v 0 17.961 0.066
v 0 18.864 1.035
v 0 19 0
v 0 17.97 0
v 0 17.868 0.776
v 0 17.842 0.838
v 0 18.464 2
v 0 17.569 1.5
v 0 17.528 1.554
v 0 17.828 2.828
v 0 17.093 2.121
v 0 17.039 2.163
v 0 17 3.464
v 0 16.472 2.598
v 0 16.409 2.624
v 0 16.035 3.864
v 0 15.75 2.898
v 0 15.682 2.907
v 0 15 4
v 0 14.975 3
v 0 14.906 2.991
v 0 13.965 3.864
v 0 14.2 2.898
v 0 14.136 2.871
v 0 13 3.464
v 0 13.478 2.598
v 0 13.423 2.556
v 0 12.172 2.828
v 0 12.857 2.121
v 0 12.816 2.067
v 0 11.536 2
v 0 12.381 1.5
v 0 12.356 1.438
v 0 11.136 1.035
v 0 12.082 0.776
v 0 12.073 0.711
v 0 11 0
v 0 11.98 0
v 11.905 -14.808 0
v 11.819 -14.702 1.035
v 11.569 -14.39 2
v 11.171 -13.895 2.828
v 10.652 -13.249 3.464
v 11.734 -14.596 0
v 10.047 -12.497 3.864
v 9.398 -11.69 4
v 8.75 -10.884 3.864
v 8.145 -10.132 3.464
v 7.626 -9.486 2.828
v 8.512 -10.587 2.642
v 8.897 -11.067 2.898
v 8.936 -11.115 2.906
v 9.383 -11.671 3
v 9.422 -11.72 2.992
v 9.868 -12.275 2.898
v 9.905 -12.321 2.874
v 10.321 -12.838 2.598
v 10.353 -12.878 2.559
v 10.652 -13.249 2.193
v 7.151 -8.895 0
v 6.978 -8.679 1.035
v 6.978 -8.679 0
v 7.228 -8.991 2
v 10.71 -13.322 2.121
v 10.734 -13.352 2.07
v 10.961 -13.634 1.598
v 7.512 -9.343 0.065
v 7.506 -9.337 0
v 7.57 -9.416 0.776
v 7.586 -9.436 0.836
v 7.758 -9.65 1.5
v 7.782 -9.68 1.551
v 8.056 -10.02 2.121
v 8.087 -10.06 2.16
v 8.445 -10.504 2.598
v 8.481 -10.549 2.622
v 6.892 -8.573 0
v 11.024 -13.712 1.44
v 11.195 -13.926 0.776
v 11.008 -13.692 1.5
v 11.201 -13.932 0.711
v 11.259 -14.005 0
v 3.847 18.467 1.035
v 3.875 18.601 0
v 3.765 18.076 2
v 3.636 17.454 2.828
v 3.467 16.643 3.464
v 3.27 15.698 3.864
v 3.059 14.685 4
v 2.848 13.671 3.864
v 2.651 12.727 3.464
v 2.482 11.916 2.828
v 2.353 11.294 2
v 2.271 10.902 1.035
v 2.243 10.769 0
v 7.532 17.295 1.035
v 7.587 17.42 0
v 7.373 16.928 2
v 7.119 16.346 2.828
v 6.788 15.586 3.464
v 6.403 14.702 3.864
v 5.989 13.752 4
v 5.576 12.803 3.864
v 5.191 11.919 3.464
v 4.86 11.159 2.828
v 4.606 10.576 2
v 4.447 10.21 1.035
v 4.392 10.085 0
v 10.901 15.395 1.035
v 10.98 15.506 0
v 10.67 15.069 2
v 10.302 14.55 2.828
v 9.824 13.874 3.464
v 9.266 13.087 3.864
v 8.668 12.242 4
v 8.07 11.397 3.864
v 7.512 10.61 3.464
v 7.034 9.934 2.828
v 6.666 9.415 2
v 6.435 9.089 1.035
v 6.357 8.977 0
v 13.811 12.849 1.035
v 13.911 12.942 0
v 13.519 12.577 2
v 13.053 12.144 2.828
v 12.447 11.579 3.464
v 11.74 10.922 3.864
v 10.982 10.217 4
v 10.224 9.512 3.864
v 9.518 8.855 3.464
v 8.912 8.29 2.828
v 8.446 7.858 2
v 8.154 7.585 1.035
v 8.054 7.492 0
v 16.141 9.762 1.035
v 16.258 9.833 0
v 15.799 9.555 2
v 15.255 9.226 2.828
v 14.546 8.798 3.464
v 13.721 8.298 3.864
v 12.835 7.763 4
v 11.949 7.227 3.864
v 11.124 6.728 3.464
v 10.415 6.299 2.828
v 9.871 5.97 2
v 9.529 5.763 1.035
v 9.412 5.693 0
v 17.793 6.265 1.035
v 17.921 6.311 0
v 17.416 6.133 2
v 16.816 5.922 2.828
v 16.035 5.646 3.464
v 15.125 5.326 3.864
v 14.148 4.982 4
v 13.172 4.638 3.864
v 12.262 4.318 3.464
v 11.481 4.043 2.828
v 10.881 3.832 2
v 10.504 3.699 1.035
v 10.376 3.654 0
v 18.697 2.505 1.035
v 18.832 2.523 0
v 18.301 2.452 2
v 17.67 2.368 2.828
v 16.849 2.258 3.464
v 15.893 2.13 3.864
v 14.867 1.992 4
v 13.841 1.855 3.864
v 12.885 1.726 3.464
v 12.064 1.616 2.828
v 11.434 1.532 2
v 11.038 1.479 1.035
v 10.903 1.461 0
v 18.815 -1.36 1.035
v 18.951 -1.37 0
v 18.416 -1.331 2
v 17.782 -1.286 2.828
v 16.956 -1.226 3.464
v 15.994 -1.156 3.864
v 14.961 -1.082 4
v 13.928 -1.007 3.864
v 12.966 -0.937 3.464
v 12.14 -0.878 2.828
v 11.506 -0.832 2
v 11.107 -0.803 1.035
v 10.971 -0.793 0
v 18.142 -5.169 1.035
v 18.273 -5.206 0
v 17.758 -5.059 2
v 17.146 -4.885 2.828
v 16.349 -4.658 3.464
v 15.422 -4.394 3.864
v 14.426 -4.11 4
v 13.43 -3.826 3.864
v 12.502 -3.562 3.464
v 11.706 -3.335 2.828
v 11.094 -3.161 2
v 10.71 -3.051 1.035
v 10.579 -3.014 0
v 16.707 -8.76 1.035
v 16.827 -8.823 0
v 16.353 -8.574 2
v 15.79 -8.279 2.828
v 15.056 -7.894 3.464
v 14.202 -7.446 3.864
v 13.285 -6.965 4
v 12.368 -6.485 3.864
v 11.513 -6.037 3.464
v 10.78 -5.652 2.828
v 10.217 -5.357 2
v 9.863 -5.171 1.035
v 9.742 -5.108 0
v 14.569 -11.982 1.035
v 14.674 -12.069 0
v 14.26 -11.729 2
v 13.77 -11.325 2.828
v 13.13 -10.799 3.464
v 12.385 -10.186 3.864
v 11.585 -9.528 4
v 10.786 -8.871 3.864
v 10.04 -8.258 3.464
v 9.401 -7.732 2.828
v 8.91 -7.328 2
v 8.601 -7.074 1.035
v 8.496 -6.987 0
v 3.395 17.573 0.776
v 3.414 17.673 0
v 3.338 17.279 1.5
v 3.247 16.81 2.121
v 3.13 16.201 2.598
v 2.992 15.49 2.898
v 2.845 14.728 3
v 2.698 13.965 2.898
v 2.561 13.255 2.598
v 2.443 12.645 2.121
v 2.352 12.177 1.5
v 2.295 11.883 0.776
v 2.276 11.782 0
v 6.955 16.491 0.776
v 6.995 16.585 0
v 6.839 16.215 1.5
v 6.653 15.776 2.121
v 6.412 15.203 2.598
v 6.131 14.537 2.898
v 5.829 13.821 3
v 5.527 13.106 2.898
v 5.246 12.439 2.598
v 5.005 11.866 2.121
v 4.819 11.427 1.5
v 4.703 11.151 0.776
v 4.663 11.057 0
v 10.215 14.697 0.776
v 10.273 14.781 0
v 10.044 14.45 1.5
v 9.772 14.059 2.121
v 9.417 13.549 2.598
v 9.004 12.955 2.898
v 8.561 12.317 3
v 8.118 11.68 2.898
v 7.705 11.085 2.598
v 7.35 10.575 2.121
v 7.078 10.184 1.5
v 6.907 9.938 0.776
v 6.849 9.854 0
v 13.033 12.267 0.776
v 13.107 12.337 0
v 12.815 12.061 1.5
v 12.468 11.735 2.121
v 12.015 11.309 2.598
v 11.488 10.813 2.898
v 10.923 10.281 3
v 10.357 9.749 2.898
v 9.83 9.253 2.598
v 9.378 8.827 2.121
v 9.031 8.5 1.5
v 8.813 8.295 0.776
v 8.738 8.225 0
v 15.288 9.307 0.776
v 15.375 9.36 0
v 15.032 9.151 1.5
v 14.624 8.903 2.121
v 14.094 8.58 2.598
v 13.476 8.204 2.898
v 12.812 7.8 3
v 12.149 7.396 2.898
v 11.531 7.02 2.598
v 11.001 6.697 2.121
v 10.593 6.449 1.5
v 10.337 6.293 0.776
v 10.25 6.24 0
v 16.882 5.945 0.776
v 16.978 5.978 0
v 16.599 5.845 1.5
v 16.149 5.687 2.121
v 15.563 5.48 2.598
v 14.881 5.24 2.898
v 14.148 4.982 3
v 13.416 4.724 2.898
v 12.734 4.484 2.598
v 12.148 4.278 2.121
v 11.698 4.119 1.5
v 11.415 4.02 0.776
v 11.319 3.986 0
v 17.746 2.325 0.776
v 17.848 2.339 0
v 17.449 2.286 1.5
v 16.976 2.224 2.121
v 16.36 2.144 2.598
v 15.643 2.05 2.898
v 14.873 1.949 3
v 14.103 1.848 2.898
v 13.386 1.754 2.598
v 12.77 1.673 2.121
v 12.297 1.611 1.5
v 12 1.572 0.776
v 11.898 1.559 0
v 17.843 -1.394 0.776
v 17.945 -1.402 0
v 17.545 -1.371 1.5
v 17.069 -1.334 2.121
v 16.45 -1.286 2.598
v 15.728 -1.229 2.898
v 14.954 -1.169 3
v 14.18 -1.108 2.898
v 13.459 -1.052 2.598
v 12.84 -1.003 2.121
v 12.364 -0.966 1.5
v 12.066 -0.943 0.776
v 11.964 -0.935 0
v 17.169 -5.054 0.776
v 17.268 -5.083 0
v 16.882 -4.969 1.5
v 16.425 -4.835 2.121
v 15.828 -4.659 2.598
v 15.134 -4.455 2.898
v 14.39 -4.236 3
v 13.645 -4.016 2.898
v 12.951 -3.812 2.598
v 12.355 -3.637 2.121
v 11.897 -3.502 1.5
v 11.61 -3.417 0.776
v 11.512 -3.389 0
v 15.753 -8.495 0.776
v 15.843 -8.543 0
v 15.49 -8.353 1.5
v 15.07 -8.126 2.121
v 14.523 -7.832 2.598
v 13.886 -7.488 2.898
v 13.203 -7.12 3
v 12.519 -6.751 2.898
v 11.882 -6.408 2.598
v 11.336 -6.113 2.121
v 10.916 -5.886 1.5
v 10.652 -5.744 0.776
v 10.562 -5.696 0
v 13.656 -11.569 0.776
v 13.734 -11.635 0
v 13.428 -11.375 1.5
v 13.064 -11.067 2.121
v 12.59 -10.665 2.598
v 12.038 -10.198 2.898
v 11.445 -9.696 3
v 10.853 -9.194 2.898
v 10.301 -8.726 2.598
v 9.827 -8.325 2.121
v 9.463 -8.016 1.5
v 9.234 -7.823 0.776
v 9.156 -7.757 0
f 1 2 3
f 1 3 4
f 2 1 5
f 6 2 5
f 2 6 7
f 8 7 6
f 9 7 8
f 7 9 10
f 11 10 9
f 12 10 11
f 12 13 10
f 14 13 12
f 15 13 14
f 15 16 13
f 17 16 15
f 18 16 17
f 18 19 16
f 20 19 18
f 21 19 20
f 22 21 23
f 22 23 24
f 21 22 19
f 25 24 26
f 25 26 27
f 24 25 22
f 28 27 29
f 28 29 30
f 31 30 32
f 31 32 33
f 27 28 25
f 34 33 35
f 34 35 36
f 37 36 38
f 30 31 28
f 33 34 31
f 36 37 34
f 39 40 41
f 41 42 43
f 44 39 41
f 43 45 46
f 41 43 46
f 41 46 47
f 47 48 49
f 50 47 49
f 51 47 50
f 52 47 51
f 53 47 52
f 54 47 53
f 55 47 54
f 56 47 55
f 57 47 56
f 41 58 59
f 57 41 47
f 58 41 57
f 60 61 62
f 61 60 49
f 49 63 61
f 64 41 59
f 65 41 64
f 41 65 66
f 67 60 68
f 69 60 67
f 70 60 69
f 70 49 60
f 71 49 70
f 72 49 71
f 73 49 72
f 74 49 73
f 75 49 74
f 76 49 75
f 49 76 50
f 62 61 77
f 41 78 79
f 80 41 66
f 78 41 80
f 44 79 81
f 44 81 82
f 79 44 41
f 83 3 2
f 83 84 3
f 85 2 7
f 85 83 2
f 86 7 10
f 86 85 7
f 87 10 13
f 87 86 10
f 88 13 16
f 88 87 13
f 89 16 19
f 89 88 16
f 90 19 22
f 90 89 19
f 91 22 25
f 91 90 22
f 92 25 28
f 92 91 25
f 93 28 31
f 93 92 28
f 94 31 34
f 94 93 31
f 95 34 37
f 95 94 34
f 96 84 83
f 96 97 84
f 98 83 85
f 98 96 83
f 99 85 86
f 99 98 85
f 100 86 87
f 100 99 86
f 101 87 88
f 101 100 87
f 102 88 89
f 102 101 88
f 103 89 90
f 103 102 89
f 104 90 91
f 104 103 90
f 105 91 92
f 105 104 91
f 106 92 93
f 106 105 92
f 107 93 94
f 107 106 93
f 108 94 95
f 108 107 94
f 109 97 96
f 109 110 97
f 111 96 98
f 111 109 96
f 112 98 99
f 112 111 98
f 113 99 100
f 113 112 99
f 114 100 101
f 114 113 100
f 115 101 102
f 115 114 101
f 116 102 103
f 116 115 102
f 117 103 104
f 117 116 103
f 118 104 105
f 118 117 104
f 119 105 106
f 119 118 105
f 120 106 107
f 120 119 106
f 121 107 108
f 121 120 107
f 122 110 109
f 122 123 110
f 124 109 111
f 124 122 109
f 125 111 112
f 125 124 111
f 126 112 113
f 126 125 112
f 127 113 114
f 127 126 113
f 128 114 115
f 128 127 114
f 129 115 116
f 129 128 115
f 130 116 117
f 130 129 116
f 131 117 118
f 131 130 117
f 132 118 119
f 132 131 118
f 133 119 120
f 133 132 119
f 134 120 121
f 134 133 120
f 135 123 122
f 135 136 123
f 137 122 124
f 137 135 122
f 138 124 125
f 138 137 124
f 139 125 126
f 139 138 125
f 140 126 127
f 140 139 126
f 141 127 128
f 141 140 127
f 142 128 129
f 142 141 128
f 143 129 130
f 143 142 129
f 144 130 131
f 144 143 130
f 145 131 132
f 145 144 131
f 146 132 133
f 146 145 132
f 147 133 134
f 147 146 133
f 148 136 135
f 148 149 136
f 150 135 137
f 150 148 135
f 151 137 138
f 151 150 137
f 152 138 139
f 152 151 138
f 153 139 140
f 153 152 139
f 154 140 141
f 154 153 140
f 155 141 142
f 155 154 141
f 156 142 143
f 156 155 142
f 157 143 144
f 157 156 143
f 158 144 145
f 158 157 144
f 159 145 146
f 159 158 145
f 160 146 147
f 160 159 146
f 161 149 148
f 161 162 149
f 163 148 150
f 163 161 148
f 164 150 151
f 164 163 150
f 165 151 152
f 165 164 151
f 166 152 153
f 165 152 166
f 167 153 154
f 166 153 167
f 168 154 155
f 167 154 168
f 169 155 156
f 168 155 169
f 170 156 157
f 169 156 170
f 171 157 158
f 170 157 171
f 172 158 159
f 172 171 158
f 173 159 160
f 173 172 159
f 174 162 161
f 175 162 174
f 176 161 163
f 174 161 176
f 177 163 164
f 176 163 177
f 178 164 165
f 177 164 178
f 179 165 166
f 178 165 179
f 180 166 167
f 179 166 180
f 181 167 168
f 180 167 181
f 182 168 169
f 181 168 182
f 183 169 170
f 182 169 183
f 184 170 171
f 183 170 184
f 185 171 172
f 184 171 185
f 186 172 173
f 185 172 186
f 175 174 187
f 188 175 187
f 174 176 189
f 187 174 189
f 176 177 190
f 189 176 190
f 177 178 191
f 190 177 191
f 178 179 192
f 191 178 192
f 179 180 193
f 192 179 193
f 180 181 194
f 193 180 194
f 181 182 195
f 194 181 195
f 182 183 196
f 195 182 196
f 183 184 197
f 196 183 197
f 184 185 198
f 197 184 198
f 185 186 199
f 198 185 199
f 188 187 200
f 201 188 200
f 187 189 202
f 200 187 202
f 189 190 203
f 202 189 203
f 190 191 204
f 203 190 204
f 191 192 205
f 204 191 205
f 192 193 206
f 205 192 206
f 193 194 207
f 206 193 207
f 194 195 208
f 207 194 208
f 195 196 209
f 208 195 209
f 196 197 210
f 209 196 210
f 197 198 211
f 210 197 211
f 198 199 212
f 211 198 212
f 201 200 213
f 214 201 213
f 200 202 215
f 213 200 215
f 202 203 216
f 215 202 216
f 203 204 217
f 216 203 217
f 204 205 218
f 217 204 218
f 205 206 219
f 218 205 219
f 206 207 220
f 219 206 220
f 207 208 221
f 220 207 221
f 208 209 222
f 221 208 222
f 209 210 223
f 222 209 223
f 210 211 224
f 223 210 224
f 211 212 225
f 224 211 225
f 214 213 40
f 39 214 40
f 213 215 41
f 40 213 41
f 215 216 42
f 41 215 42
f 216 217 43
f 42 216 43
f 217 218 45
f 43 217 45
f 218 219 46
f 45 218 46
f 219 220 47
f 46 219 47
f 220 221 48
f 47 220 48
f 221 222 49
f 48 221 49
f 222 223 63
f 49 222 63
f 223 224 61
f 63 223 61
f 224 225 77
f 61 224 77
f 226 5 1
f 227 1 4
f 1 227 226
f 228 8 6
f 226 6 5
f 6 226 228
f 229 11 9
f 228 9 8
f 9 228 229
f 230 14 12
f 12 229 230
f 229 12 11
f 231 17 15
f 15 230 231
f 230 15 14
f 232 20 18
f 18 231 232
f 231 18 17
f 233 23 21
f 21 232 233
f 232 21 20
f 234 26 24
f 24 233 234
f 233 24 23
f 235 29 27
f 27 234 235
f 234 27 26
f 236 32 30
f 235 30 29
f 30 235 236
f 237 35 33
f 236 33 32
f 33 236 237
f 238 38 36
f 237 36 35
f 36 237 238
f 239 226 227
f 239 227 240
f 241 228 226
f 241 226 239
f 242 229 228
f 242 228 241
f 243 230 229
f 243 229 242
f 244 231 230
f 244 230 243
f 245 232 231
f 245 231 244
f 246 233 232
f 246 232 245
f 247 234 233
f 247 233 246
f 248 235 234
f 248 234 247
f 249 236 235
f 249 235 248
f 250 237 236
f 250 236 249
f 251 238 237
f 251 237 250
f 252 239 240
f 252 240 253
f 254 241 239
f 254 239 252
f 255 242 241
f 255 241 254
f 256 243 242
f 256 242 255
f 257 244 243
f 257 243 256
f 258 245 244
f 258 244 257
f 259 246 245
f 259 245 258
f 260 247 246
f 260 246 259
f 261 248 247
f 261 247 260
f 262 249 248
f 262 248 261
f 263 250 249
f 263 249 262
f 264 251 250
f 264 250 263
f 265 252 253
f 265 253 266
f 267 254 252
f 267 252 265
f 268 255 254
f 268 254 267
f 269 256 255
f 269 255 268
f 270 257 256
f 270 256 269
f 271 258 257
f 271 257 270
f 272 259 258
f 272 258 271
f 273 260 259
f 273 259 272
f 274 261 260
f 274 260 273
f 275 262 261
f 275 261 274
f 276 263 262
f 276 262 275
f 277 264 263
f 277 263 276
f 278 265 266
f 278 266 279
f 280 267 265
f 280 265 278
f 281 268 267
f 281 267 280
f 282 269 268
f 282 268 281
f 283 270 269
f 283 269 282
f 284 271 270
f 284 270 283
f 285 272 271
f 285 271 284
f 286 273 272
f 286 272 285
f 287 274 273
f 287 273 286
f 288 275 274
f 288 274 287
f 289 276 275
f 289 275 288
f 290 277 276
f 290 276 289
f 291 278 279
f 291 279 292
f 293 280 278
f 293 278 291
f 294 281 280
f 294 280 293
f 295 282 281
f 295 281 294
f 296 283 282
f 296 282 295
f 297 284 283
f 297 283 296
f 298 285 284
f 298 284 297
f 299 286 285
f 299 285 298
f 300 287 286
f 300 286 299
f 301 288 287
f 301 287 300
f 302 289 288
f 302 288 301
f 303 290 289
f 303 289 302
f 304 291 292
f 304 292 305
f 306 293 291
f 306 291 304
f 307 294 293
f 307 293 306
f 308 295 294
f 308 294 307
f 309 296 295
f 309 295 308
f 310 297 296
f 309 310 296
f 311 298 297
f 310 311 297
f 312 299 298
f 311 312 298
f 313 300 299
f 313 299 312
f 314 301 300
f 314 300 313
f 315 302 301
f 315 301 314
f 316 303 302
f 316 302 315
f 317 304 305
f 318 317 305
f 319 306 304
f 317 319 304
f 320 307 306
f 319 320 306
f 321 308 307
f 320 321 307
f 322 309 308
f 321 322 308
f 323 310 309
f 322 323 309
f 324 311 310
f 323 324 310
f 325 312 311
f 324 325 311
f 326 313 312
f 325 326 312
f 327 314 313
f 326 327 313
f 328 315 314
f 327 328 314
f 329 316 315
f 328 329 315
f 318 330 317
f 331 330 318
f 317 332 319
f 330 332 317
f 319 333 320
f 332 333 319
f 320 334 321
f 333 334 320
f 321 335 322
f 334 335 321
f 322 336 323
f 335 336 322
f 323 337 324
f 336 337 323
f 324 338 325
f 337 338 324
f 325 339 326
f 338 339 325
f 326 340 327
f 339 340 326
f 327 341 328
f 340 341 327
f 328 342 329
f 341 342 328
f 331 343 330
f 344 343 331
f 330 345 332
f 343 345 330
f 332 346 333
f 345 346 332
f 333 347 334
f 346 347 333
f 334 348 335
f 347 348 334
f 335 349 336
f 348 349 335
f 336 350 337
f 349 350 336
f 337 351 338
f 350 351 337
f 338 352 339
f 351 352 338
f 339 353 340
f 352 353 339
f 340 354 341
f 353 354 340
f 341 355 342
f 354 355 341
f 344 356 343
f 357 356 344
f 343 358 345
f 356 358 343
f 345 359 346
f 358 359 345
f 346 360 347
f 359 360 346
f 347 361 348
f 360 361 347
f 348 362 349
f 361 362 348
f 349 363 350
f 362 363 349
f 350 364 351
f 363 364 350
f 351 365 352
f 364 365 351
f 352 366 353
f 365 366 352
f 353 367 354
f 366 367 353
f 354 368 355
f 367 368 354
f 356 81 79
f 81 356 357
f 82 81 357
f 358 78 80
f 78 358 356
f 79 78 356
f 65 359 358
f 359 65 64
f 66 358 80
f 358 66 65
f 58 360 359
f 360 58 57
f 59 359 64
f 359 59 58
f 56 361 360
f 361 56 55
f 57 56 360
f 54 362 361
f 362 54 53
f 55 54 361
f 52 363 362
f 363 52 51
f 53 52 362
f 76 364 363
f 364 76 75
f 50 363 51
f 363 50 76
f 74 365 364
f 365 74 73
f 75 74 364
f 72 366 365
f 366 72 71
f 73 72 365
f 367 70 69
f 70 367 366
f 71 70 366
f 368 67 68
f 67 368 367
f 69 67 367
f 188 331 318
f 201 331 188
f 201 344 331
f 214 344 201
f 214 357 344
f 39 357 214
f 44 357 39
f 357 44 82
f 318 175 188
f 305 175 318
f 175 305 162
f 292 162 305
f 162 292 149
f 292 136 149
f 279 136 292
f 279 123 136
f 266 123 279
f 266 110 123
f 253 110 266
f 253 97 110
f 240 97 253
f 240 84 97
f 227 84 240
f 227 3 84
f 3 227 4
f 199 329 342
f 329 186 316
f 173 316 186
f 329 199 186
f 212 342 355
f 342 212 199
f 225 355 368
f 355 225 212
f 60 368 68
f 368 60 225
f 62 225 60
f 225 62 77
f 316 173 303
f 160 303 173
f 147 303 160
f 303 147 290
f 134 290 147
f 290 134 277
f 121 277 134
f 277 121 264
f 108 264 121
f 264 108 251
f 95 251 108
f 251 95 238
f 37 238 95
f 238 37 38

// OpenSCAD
// file: ../build_environments.scad
// build_environments.scad: modules to build level sections
//

module pool(diameter=10.0, wall_height=2.0, step_width=3.0, connections=[])
{
    difference() {
        union() {
        difference() {
            cylinder(h=0.5,r1=diameter+step_width,r2=diameter+step_width,$fn=48);
            translate([0,0,-0.1])
                cylinder(h=0.7,r1=diameter,r2=diameter,$fn=48);
        }
        difference() {
            cylinder(h=wall_height,r1=diameter+step_width+1.0,r2=diameter+step_width+1.0,$fn=48);
            translate([0,0,-0.1])
                cylinder(h=wall_height+0.2,r1=diameter+step_width,r2=diameter+step_width,$fn=48);
        }
        }
    
        for (c = connections)
        {
            rotate([0,90,0]) {
                angle = atan2(c[1],c[0]);
                rotate([-angle,0,0]) {
                    cylinder(h=diameter+5.0,r1=c[2],r2=c[2],$fn=48);
                }
            }
        }
    }
}

module straight(length=10.0, width=2.0, dy1=0.0, dy2=0.0, dz=0.0)
{
    dims = [0, 0, 0, 0, 0, (dz/length)];
    matrix = [
        [ 1, dims[0], dims[1], 0 ],
        [ dims[2], 1, dims[4], 0 ],
        [ dims[5], dims[3], 1, 0 ],
        [ 0, 0, 0, 1 ]
    ];
    multmatrix(matrix)
    difference() {
        translate([dy1,0,0])
        union() {
            rotate([0,90,0]) {
                difference() {
                    cylinder(h=(length-dy1-dy2),r1=width+1.0,r2=width+1.0,$fn=24);
                    translate([0,0,-0.1])
                        cylinder(h=(length-dy1-dy2+0.2),r1=width,r2=width,$fn=24);
                }
                difference() {
                    cylinder(h=1.0,r1=width+2.0,r2=width+2.0,$fn=24);
                    translate([0,0,-0.1])
                        cylinder(h=1.2,r1=width,r2=width,$fn=24);
                }
                translate([0,0,(length-dy1-dy2)-1.0]) {
                    difference() {
                        cylinder(h=1.0,r1=width+2.0,r2=width+2.0,$fn=24);
                        translate([0,0,-0.1])
                            cylinder(h=1.2,r1=width,r2=width,$fn=24);
                    }
                }
            }
        }
        translate([0,0,-(2*width+4.0)/2])
            cube([3*length,3*length,2*width+4.0],center=true);
    }
}

module curve(p0=[0,0], center=[0,0], dir=1, angle=0.0, width=2.0)
{
    radius = sqrt((p0[0]-center[0])*(p0[0]-center[0]) + (p0[1]-center[1])*(p0[1]-center[1]));
    if (dir == 0) {
        difference() {
            rotate([0,0,-90])
            difference() {
                rotate_extrude(angle = angle, convexity = 10, $fn=32)
                    translate([radius, 0, 0])
                        circle(r = width+1.0,$fn=24);
                rotate([0,0,-1.0])
                    rotate_extrude(angle = angle+2.0, convexity = 10, $fn=32)
                        translate([radius, 0, 0])
                            circle(r = width,$fn=24);
            }
            translate([0,0,-(2*width+4.0)/2])
                cube([5*radius,5*radius,2*width+4.0],center=true);
        }
    }
    else {
        difference() {
            rotate([0,0,90])
            difference() {
                rotate_extrude(angle = -angle, convexity = 10, $fn=32)
                    translate([radius, 0, 0])
                        circle(r = width+1.0,$fn=24);
                rotate([0,0,1.0])
                    rotate_extrude(angle = -angle-2.0, convexity = 10, $fn=32)
                        translate([radius, 0, 0])
                            circle(r = width,$fn=24);
            }
            translate([0,0,-(2*width+4.0)/2])
                cube([5*radius,5*radius,2*width+4.0],center=true);
        }
    }

}

// test pool
//pool(diameter=12.0000, wall_height=3.0000, step_width=3.0000, connections=[[0.0000,-26.0000,2.0000], [23.6074,0.0000,2.0000]]);

// test straight, slope
//straight(length=26.0000, width=2.0000, dy1=11.8322, dy2=6.7082, dz=0.0000);
//straight(length=29.1549, width=12.0000, dy1=0.0000, dy2=0.0000, dz=-15.0000);

// test curve
//curve(p0=[23.6074, 0.0000], center=[23.6074, 5.0000], dir=0, angle=60.1011, width=2.0000);
//curve(p0=[33.6426, 12.4219], center=[37.9771, 9.9295], dir=1, angle=120.4627, width=2.0000);
// main file
use <../build_environments.scad>;
curve(p0=[-31.5797, 19.9667], center=[-38.4687, 6.6422], dir=1, angle=141.2028, width=3.0000);
